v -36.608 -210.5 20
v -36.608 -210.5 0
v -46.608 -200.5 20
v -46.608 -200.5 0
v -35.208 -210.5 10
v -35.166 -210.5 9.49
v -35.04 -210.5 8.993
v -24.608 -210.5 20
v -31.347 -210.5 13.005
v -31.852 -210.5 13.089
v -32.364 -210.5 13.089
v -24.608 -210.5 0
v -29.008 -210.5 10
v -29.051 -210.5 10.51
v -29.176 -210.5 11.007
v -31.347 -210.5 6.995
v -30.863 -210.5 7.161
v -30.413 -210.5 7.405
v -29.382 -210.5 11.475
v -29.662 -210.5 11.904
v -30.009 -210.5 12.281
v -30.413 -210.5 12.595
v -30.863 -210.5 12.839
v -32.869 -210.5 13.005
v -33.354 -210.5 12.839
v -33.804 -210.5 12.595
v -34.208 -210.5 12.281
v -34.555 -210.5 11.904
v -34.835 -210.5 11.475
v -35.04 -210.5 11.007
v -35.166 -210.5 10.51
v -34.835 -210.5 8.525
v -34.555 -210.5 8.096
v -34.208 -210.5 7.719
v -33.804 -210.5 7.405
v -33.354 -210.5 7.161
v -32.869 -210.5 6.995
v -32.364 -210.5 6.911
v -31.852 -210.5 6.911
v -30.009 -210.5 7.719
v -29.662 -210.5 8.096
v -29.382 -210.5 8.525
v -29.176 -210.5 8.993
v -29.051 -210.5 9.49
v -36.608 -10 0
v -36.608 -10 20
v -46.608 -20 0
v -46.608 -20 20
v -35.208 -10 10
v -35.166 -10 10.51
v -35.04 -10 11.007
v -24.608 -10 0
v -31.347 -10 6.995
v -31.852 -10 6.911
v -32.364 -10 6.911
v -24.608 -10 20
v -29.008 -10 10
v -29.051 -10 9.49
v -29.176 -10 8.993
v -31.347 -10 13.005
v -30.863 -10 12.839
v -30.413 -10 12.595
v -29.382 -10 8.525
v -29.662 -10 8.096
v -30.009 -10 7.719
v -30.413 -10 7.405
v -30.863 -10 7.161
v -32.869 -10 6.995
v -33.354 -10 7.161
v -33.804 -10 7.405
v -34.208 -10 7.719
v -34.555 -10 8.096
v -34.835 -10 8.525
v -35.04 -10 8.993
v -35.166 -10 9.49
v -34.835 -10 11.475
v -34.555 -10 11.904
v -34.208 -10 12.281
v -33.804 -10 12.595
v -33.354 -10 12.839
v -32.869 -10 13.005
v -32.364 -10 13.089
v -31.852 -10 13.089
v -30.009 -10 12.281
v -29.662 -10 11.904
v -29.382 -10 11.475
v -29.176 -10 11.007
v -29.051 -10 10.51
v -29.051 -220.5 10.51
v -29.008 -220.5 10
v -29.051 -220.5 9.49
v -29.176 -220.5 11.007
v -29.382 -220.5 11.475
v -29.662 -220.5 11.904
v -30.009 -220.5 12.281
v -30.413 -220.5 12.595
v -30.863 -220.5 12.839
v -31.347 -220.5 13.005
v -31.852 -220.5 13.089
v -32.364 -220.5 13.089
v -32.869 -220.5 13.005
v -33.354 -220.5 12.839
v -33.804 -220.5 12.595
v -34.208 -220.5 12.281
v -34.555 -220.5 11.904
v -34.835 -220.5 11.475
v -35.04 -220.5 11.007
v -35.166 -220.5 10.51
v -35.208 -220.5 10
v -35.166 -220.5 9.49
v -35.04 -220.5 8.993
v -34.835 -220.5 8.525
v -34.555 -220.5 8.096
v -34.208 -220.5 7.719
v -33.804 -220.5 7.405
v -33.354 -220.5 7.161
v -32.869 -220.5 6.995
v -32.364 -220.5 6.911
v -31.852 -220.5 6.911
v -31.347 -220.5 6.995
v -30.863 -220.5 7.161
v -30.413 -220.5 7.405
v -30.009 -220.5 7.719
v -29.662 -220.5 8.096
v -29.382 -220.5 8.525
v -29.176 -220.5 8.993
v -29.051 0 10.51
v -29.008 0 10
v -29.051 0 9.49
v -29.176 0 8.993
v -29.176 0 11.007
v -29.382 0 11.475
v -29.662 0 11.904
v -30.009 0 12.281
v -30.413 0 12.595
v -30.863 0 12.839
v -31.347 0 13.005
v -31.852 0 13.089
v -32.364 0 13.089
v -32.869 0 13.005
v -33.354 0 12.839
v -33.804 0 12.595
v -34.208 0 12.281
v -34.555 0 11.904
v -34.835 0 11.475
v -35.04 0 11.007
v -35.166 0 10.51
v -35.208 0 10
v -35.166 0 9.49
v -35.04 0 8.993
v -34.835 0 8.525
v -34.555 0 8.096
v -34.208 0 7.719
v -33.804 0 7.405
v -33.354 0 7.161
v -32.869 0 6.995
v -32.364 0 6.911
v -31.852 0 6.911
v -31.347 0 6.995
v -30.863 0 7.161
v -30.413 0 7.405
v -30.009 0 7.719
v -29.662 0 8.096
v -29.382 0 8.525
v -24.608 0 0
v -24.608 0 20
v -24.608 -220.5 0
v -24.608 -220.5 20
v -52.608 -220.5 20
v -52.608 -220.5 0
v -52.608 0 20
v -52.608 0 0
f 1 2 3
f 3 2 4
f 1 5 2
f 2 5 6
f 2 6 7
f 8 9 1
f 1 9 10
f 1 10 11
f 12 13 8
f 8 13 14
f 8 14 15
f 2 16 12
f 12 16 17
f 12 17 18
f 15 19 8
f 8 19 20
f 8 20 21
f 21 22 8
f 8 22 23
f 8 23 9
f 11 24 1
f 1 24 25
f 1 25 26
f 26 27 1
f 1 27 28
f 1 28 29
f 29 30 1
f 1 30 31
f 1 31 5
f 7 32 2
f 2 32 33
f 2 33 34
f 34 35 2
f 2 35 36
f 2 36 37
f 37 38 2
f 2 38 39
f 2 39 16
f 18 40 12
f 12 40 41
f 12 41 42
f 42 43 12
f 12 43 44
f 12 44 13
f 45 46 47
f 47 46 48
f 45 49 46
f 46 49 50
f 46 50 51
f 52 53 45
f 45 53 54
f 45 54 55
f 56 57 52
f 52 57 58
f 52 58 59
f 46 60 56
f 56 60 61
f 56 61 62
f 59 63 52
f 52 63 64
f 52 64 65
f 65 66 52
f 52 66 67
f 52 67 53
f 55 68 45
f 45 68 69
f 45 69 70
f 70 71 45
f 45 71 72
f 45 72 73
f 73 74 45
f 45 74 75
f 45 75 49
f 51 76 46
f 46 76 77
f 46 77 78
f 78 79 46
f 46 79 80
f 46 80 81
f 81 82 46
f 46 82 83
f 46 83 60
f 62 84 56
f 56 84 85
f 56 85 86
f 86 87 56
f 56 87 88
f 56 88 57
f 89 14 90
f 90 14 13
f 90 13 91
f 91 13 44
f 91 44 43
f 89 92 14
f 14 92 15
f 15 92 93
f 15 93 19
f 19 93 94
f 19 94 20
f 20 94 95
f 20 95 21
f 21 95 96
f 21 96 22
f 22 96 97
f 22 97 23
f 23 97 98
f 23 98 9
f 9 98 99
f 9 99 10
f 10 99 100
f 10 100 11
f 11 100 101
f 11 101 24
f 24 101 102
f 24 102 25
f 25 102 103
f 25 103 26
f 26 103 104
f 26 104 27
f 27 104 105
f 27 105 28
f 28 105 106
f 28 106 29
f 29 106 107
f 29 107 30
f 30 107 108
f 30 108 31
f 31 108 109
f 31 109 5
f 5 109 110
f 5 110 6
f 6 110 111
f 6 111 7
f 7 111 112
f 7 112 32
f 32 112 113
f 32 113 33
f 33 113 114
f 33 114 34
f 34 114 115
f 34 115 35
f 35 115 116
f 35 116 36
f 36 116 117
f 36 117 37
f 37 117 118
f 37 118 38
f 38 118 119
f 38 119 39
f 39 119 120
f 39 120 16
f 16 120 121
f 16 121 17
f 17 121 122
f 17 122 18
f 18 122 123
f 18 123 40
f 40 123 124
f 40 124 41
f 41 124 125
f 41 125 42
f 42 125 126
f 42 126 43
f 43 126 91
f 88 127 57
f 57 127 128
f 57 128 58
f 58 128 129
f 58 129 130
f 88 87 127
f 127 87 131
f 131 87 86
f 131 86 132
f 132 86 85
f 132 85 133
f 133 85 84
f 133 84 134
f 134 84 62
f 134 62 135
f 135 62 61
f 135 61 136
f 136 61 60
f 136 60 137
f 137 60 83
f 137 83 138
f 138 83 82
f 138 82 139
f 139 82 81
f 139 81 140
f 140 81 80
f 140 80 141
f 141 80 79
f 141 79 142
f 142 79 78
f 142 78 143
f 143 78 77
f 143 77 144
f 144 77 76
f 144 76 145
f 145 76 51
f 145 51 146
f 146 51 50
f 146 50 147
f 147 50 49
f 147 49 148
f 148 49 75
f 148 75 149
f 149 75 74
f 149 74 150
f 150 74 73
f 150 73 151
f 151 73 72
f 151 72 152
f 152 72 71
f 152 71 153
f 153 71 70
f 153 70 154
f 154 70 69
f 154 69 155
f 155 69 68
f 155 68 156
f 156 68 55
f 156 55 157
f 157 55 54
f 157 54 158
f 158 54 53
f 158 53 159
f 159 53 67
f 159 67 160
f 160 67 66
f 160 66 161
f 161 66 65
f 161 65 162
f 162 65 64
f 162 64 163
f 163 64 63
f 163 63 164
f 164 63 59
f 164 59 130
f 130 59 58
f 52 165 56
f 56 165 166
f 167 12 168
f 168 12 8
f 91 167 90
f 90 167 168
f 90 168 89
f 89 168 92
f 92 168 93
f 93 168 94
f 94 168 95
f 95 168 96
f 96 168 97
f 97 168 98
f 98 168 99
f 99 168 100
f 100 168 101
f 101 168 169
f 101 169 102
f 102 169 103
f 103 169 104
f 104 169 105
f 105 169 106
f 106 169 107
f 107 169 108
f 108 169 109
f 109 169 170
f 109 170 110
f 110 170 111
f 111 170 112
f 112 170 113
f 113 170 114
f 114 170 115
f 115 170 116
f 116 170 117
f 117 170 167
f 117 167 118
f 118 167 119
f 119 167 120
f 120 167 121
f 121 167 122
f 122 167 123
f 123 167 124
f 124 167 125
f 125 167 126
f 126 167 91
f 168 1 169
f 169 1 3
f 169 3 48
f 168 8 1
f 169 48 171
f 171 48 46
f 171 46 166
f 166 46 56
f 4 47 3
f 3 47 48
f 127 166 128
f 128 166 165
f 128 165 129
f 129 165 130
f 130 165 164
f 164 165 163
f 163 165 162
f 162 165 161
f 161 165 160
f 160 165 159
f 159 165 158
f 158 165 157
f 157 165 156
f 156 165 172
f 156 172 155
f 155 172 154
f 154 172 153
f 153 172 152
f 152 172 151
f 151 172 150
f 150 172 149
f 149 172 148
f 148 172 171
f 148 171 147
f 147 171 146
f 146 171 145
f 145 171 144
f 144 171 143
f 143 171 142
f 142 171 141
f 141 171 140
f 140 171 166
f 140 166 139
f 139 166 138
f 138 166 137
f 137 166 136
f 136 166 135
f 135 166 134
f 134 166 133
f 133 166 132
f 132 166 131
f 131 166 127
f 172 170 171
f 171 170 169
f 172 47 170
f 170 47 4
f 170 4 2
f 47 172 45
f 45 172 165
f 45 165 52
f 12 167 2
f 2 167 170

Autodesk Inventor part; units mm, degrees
ref_plane "YZ Plane" through (0, 0, 0) normal (1, 0, 0) x (0, 1, 0)
ref_plane "XZ Plane" through (0, 0, 0) normal (0, 1, 0) x (-1, 0, 0)
ref_plane "XY Plane" through (0, 0, 0) normal (0, 0, 1) x (1, 0, 0)
ref_plane "Work Plane1" through (0, 0, 0) normal (0, 0, 1) x (1, 0, 0)
sketch "Sketch1" plane through (0, 0, 0) normal (0, 0, 1) x (1, 0, 0)
  line L0 (0, 0) -> (-19.6084, 0) projected
  line L1 (0, -10) -> (-19.6084, -10) projected
  line L2 (0, 0) -> (0, -10) projected
  line L3 (0, -210.5) -> (-19.6084, -210.5) projected
  line L4 (0, -220.5) -> (-19.6084, -220.5) projected
  line L5 (0, -220.5) -> (0, -210.5) projected
  line L6 (-52.6084, 0) -> (-46.6084, 0)
  line L7 (-46.6084, 0) -> (-46.6084, -220.5)
  line L8 (-46.6084, -220.5) -> (-52.6084, -220.5)
  line L9 (-52.6084, -220.5) -> (-52.6084, 0)
  line L10 (-35.1084, -220.5) -> (-35.1084, 29.5) construction
  line L11 (-29.1084, -220.5) -> (-29.1084, 29.5) construction
  line L12 (-46.6084, 0) -> (-24.6084, 0)
  line L13 (-24.6084, 0) -> (-24.6084, -10)
  line L14 (-24.6084, -10) -> (-46.6084, -10)
  line L15 (-46.6084, -10) -> (-46.6084, 0)
  line L16 (-46.6084, -220.5) -> (-24.6084, -220.5)
  line L17 (-24.6084, -220.5) -> (-24.6084, -210.5)
  line L18 (-24.6084, -210.5) -> (-46.6084, -210.5)
  line L19 (-46.6084, -210.5) -> (-46.6084, -220.5)
  line L20 (-19.6084, -10) -> (-19.6084, 0) projected
  line L21 (-19.6084, -220.5) -> (-19.6084, -210.5) projected
  dimension "d0" = 6
  dimension "d1" = 22
  dimension "d2" = 10
  dimension "d3" = 22
  dimension "d4" = 10
extrude "Extrusion1" add sketch "Sketch1" along normal blind 20 contours L6 L7 L8 L9 | L12 L13 L14 L7 | L7 L18 L17 L16
sketch "Sketch2" plane through (-52.6084, 0, 0) normal (0, 1, 0) x (1, 0, 0)
  circle A0 centre (20.5, 120.1) radius 3 projected
  line L0 (0, 0) -> (28, 0) projected
  line L1 (0, 0) -> (0, -20) projected
  line L2 (28, -20) -> (0, -20) projected
  line L3 (28, 0) -> (28, -20) projected
  circle A1 centre (20.5, -10) radius 3.1
  point P0 (52.6084, 0)
  dimension "d7" = 6.2
  dimension "d8" = 10
extrude "Extrusion2" cut sketch "Sketch2" against normal through all contours A1
chamfer "Chamfer1" distance 10 angle 45 2 edges at (-46.6084, -10, 10) (-46.6084, -210.5, 10)
ref_plane "Work Plane2" through (0, 0, 10) normal (0, 0, 1) x (1, 0, 0)
properties part number "06_OPENTRONS_Microscope_Extraslide"
